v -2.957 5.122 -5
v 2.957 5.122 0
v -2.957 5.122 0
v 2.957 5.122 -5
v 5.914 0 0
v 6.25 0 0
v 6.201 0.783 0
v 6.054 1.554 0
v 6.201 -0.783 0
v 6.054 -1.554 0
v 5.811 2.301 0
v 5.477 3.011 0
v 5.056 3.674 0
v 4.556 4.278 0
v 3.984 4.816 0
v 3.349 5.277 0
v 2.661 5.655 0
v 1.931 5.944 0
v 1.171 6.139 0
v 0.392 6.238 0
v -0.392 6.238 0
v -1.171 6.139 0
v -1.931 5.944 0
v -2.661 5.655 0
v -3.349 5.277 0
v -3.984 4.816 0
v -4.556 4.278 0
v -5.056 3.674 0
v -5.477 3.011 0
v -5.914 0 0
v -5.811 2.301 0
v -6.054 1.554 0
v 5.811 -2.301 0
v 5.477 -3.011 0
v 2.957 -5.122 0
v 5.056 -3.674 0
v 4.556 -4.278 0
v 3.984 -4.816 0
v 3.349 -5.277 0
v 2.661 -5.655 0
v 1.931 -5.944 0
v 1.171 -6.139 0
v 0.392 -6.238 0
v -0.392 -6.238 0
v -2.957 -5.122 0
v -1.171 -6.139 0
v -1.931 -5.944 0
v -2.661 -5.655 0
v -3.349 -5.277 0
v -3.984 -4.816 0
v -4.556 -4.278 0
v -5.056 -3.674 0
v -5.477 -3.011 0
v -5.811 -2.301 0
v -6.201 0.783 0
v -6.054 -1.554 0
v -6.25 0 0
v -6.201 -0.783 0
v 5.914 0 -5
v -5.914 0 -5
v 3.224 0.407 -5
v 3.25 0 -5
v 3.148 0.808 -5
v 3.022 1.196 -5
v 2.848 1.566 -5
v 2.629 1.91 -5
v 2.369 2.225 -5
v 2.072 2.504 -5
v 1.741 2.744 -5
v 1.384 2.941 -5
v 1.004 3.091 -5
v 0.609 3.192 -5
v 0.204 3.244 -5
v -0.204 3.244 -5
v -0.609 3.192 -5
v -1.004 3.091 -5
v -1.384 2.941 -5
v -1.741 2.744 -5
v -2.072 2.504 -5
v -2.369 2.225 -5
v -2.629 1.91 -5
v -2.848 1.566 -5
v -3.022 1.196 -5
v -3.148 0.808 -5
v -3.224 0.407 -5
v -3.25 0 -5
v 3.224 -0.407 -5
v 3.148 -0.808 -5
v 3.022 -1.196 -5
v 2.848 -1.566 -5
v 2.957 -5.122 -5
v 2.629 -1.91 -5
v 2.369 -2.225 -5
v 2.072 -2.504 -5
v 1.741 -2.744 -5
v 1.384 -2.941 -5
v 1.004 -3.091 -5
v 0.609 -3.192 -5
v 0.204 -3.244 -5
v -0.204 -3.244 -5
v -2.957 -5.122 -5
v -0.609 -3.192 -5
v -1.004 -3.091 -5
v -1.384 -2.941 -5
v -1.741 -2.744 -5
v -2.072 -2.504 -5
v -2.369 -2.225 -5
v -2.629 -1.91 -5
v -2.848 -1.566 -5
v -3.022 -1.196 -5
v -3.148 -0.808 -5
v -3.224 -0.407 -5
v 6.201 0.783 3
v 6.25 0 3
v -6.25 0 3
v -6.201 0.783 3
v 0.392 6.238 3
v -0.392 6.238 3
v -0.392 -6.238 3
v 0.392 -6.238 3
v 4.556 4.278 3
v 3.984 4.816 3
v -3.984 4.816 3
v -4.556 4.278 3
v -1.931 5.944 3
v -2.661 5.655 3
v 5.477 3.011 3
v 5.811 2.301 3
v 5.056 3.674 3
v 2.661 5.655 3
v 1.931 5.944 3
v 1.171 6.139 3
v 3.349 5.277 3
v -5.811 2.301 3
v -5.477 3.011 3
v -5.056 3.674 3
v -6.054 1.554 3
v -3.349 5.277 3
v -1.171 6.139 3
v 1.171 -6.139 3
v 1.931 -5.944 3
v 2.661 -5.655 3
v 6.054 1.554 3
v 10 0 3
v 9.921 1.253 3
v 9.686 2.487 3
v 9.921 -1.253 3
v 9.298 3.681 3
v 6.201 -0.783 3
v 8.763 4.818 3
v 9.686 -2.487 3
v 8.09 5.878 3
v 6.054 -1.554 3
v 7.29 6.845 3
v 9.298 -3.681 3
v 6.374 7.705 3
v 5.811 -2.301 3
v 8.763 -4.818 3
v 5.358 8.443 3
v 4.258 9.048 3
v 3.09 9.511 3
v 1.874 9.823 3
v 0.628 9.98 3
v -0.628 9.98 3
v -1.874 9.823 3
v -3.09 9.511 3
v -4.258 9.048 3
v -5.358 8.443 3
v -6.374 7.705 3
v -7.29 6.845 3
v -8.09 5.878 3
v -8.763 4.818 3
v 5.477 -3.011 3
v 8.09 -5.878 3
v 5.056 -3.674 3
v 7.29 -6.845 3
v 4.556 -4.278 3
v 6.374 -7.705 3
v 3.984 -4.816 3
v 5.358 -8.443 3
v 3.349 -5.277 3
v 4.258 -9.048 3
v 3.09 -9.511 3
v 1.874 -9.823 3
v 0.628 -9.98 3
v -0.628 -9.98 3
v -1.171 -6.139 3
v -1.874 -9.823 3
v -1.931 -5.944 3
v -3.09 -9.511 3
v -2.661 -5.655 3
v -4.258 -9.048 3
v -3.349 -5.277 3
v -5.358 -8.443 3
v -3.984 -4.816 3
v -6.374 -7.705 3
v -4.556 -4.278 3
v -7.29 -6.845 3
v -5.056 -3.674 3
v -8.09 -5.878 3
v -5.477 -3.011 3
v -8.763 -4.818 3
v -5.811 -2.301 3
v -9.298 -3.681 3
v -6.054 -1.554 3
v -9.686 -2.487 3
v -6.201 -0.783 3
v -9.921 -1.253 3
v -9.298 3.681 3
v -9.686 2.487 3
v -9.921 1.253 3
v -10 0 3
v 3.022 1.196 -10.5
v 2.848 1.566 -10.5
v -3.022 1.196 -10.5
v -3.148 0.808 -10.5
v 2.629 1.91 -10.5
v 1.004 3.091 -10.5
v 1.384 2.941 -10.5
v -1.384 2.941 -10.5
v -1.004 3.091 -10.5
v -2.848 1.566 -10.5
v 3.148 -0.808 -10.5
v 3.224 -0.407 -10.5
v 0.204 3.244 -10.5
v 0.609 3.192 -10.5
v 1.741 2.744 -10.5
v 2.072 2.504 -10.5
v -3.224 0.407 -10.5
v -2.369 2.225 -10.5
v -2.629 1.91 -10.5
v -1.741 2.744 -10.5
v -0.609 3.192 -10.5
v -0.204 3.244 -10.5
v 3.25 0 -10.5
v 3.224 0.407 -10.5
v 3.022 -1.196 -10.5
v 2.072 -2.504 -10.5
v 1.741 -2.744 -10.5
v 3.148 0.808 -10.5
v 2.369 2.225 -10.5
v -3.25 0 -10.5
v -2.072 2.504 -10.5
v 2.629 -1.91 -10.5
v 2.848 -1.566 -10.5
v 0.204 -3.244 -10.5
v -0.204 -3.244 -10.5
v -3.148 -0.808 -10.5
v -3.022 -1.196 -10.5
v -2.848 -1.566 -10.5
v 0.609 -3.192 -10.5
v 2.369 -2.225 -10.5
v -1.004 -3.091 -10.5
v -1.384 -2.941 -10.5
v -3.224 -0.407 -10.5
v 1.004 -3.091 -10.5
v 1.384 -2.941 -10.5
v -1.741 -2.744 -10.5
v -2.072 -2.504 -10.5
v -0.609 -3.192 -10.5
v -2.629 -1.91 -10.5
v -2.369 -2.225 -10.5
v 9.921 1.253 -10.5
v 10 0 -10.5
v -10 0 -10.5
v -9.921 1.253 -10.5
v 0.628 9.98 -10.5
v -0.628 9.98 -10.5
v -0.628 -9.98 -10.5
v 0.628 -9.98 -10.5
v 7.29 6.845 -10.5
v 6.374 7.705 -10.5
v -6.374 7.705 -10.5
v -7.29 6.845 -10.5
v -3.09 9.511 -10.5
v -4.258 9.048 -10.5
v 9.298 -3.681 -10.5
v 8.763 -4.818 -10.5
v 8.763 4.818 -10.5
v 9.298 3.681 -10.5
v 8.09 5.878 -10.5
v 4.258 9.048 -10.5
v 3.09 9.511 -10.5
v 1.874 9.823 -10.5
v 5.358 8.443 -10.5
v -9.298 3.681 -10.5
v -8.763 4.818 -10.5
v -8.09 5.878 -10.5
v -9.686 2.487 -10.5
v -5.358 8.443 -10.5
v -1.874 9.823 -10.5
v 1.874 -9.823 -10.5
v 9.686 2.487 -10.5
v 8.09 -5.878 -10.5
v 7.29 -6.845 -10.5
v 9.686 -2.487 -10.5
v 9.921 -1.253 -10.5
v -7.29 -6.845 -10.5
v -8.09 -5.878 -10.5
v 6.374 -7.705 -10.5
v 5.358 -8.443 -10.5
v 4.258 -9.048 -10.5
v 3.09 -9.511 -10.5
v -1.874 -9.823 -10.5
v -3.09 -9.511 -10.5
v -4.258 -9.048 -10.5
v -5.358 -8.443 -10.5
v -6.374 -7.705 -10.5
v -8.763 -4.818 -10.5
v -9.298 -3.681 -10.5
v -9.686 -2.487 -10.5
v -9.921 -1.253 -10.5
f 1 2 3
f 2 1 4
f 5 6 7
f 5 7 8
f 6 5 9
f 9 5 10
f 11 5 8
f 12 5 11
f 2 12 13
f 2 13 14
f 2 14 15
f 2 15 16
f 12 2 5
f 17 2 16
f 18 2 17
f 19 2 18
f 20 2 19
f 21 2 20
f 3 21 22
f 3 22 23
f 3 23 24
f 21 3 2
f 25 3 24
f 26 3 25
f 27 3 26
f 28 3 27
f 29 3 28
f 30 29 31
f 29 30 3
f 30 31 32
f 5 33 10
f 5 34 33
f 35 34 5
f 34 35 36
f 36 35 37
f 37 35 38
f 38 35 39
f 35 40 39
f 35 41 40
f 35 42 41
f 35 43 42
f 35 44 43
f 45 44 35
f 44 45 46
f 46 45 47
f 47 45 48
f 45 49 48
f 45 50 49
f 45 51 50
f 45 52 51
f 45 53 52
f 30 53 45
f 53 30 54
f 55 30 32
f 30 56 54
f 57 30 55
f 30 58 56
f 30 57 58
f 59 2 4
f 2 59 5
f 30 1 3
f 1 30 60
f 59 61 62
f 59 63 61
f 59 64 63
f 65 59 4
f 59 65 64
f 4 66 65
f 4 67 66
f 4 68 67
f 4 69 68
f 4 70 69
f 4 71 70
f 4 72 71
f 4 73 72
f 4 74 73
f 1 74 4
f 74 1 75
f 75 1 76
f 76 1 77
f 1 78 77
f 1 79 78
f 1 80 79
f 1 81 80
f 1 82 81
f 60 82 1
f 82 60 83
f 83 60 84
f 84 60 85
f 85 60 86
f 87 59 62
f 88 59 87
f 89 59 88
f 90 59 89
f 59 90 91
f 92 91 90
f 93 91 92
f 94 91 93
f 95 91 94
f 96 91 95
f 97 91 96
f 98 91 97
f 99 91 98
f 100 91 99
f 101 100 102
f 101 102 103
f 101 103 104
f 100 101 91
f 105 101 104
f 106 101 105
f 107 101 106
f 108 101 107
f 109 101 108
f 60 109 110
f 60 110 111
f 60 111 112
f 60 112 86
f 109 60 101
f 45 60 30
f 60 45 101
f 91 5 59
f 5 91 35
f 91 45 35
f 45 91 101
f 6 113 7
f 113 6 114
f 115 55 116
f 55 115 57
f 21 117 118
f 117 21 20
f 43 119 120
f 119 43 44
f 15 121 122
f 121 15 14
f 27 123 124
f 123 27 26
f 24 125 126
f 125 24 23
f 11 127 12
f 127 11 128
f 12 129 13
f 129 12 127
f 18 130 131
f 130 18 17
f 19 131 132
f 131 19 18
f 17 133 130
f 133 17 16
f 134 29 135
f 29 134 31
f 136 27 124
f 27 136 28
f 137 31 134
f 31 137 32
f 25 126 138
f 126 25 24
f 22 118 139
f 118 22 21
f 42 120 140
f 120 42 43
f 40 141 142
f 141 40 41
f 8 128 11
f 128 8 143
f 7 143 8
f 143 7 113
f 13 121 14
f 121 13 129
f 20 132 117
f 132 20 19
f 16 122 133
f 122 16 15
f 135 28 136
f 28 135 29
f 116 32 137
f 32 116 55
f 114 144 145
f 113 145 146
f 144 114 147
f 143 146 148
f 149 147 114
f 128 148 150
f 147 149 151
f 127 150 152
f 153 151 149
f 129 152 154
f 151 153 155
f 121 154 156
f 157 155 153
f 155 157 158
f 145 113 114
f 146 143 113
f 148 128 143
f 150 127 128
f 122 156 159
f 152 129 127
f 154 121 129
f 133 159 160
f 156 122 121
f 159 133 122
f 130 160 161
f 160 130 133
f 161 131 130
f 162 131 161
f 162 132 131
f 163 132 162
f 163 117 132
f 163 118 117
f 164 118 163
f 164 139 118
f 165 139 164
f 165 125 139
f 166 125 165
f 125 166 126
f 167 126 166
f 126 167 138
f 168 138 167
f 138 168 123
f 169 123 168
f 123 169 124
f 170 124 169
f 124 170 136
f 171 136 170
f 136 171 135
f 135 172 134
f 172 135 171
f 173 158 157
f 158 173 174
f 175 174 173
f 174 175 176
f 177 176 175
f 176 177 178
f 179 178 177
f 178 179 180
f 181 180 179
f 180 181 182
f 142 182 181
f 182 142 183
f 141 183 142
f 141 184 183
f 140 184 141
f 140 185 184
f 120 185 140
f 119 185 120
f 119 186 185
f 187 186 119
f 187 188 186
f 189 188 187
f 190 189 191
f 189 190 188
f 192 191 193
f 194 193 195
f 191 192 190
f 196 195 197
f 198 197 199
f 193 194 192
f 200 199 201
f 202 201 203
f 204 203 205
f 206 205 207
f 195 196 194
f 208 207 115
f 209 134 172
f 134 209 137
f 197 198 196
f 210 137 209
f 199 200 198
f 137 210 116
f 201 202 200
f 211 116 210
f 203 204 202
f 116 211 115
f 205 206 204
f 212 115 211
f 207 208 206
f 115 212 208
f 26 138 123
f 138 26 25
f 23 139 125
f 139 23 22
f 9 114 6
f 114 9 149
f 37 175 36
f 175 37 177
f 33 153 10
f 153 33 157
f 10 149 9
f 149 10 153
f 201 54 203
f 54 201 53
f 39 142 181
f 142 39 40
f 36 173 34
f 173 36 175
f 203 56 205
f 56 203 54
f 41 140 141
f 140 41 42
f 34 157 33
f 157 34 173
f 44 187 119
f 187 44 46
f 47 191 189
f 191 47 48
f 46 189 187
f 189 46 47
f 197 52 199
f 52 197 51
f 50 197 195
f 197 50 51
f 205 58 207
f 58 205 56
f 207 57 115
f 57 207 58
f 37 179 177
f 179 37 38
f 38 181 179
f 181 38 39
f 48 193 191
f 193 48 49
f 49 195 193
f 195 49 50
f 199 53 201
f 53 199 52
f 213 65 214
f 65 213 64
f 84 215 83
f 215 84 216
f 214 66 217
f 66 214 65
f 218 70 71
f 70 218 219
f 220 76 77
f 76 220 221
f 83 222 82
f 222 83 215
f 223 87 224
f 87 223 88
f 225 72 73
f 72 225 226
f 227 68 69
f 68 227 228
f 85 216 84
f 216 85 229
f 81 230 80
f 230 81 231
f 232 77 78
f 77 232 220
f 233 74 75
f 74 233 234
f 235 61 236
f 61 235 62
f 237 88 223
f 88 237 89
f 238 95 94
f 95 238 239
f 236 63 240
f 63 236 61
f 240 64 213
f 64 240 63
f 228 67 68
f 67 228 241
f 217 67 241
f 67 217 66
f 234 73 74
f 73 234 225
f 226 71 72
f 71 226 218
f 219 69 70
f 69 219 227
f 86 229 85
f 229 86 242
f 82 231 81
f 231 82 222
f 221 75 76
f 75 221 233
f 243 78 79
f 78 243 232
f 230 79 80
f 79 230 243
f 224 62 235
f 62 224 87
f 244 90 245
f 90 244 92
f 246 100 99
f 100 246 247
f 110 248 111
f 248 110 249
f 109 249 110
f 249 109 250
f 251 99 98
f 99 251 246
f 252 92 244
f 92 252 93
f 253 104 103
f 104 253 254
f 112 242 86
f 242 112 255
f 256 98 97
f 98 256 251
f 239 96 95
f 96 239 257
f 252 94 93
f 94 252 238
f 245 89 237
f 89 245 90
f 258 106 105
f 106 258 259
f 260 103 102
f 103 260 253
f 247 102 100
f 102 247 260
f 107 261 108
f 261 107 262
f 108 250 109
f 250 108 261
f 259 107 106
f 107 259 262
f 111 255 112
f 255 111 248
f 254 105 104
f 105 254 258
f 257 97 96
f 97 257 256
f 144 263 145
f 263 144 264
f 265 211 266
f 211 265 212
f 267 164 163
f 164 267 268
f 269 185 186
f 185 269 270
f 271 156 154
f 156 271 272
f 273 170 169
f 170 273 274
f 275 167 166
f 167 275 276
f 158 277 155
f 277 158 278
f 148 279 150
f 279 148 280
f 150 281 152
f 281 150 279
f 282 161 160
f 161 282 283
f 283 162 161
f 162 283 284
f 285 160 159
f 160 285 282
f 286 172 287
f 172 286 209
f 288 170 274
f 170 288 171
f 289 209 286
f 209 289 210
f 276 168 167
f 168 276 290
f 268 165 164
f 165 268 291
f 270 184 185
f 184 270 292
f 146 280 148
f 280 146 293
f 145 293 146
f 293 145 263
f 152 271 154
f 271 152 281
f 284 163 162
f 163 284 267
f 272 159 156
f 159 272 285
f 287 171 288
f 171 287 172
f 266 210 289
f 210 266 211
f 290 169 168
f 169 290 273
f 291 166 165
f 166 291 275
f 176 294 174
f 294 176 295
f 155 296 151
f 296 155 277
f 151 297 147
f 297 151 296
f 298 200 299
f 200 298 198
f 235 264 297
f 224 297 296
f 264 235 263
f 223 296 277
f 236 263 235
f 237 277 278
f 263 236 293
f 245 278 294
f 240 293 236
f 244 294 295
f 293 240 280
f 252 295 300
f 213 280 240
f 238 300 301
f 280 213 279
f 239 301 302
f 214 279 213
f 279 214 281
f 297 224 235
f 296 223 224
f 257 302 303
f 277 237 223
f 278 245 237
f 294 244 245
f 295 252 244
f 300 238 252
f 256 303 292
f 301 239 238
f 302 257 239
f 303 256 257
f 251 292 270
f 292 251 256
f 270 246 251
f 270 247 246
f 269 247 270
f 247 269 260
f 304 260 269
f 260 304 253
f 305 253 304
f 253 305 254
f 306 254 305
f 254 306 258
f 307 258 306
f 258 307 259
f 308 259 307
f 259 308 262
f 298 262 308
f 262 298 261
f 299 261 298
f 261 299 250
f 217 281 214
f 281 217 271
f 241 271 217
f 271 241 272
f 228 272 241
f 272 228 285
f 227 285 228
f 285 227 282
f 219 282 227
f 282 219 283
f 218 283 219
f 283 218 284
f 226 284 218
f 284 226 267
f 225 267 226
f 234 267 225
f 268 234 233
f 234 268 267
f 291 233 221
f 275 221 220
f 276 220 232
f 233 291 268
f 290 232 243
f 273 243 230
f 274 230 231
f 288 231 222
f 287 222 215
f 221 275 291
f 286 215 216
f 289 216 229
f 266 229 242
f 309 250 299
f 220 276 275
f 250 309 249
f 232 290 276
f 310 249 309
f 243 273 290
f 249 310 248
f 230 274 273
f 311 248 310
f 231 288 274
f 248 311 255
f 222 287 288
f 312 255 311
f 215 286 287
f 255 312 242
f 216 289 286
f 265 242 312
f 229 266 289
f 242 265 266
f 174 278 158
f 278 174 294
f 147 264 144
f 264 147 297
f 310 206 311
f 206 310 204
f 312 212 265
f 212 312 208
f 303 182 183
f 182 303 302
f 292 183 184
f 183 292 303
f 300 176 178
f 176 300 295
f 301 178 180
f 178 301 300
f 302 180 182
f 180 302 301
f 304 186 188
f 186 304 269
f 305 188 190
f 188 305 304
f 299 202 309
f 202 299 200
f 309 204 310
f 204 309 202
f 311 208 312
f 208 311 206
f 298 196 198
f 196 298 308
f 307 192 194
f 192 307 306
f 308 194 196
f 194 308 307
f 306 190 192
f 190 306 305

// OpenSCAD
$fn = 50;

difference() {
	union() {
		translate(v = [0, 0, -10.5]) {
			cylinder(h = 13.5, r = 10.0);
		}
	}
	union() {
		translate(v = [0, 0, 0]) {
			rotate(a = [0, 0, 0]) {
				difference() {
					union() {
						translate(v = [0, 0, -5]) {
							linear_extrude(height = 5) {
								polygon(points = [[5.914249999999999, 0.0], [2.957125, 5.1218907443321156], [-2.9571249999999982, 5.1218907443321156], [-5.914249999999999, 7.242867331857232e-16], [-2.9571250000000022, -5.121890744332115], [2.9571249999999956, -5.121890744332118]]);
							}
						}
					}
					union();
				}
			}
		}
		#cylinder(h = 3, r = 6.25);
		#translate(v = [0, 0, -100.0]) {
			cylinder(h = 200, r = 3.25);
		}
	}
}
